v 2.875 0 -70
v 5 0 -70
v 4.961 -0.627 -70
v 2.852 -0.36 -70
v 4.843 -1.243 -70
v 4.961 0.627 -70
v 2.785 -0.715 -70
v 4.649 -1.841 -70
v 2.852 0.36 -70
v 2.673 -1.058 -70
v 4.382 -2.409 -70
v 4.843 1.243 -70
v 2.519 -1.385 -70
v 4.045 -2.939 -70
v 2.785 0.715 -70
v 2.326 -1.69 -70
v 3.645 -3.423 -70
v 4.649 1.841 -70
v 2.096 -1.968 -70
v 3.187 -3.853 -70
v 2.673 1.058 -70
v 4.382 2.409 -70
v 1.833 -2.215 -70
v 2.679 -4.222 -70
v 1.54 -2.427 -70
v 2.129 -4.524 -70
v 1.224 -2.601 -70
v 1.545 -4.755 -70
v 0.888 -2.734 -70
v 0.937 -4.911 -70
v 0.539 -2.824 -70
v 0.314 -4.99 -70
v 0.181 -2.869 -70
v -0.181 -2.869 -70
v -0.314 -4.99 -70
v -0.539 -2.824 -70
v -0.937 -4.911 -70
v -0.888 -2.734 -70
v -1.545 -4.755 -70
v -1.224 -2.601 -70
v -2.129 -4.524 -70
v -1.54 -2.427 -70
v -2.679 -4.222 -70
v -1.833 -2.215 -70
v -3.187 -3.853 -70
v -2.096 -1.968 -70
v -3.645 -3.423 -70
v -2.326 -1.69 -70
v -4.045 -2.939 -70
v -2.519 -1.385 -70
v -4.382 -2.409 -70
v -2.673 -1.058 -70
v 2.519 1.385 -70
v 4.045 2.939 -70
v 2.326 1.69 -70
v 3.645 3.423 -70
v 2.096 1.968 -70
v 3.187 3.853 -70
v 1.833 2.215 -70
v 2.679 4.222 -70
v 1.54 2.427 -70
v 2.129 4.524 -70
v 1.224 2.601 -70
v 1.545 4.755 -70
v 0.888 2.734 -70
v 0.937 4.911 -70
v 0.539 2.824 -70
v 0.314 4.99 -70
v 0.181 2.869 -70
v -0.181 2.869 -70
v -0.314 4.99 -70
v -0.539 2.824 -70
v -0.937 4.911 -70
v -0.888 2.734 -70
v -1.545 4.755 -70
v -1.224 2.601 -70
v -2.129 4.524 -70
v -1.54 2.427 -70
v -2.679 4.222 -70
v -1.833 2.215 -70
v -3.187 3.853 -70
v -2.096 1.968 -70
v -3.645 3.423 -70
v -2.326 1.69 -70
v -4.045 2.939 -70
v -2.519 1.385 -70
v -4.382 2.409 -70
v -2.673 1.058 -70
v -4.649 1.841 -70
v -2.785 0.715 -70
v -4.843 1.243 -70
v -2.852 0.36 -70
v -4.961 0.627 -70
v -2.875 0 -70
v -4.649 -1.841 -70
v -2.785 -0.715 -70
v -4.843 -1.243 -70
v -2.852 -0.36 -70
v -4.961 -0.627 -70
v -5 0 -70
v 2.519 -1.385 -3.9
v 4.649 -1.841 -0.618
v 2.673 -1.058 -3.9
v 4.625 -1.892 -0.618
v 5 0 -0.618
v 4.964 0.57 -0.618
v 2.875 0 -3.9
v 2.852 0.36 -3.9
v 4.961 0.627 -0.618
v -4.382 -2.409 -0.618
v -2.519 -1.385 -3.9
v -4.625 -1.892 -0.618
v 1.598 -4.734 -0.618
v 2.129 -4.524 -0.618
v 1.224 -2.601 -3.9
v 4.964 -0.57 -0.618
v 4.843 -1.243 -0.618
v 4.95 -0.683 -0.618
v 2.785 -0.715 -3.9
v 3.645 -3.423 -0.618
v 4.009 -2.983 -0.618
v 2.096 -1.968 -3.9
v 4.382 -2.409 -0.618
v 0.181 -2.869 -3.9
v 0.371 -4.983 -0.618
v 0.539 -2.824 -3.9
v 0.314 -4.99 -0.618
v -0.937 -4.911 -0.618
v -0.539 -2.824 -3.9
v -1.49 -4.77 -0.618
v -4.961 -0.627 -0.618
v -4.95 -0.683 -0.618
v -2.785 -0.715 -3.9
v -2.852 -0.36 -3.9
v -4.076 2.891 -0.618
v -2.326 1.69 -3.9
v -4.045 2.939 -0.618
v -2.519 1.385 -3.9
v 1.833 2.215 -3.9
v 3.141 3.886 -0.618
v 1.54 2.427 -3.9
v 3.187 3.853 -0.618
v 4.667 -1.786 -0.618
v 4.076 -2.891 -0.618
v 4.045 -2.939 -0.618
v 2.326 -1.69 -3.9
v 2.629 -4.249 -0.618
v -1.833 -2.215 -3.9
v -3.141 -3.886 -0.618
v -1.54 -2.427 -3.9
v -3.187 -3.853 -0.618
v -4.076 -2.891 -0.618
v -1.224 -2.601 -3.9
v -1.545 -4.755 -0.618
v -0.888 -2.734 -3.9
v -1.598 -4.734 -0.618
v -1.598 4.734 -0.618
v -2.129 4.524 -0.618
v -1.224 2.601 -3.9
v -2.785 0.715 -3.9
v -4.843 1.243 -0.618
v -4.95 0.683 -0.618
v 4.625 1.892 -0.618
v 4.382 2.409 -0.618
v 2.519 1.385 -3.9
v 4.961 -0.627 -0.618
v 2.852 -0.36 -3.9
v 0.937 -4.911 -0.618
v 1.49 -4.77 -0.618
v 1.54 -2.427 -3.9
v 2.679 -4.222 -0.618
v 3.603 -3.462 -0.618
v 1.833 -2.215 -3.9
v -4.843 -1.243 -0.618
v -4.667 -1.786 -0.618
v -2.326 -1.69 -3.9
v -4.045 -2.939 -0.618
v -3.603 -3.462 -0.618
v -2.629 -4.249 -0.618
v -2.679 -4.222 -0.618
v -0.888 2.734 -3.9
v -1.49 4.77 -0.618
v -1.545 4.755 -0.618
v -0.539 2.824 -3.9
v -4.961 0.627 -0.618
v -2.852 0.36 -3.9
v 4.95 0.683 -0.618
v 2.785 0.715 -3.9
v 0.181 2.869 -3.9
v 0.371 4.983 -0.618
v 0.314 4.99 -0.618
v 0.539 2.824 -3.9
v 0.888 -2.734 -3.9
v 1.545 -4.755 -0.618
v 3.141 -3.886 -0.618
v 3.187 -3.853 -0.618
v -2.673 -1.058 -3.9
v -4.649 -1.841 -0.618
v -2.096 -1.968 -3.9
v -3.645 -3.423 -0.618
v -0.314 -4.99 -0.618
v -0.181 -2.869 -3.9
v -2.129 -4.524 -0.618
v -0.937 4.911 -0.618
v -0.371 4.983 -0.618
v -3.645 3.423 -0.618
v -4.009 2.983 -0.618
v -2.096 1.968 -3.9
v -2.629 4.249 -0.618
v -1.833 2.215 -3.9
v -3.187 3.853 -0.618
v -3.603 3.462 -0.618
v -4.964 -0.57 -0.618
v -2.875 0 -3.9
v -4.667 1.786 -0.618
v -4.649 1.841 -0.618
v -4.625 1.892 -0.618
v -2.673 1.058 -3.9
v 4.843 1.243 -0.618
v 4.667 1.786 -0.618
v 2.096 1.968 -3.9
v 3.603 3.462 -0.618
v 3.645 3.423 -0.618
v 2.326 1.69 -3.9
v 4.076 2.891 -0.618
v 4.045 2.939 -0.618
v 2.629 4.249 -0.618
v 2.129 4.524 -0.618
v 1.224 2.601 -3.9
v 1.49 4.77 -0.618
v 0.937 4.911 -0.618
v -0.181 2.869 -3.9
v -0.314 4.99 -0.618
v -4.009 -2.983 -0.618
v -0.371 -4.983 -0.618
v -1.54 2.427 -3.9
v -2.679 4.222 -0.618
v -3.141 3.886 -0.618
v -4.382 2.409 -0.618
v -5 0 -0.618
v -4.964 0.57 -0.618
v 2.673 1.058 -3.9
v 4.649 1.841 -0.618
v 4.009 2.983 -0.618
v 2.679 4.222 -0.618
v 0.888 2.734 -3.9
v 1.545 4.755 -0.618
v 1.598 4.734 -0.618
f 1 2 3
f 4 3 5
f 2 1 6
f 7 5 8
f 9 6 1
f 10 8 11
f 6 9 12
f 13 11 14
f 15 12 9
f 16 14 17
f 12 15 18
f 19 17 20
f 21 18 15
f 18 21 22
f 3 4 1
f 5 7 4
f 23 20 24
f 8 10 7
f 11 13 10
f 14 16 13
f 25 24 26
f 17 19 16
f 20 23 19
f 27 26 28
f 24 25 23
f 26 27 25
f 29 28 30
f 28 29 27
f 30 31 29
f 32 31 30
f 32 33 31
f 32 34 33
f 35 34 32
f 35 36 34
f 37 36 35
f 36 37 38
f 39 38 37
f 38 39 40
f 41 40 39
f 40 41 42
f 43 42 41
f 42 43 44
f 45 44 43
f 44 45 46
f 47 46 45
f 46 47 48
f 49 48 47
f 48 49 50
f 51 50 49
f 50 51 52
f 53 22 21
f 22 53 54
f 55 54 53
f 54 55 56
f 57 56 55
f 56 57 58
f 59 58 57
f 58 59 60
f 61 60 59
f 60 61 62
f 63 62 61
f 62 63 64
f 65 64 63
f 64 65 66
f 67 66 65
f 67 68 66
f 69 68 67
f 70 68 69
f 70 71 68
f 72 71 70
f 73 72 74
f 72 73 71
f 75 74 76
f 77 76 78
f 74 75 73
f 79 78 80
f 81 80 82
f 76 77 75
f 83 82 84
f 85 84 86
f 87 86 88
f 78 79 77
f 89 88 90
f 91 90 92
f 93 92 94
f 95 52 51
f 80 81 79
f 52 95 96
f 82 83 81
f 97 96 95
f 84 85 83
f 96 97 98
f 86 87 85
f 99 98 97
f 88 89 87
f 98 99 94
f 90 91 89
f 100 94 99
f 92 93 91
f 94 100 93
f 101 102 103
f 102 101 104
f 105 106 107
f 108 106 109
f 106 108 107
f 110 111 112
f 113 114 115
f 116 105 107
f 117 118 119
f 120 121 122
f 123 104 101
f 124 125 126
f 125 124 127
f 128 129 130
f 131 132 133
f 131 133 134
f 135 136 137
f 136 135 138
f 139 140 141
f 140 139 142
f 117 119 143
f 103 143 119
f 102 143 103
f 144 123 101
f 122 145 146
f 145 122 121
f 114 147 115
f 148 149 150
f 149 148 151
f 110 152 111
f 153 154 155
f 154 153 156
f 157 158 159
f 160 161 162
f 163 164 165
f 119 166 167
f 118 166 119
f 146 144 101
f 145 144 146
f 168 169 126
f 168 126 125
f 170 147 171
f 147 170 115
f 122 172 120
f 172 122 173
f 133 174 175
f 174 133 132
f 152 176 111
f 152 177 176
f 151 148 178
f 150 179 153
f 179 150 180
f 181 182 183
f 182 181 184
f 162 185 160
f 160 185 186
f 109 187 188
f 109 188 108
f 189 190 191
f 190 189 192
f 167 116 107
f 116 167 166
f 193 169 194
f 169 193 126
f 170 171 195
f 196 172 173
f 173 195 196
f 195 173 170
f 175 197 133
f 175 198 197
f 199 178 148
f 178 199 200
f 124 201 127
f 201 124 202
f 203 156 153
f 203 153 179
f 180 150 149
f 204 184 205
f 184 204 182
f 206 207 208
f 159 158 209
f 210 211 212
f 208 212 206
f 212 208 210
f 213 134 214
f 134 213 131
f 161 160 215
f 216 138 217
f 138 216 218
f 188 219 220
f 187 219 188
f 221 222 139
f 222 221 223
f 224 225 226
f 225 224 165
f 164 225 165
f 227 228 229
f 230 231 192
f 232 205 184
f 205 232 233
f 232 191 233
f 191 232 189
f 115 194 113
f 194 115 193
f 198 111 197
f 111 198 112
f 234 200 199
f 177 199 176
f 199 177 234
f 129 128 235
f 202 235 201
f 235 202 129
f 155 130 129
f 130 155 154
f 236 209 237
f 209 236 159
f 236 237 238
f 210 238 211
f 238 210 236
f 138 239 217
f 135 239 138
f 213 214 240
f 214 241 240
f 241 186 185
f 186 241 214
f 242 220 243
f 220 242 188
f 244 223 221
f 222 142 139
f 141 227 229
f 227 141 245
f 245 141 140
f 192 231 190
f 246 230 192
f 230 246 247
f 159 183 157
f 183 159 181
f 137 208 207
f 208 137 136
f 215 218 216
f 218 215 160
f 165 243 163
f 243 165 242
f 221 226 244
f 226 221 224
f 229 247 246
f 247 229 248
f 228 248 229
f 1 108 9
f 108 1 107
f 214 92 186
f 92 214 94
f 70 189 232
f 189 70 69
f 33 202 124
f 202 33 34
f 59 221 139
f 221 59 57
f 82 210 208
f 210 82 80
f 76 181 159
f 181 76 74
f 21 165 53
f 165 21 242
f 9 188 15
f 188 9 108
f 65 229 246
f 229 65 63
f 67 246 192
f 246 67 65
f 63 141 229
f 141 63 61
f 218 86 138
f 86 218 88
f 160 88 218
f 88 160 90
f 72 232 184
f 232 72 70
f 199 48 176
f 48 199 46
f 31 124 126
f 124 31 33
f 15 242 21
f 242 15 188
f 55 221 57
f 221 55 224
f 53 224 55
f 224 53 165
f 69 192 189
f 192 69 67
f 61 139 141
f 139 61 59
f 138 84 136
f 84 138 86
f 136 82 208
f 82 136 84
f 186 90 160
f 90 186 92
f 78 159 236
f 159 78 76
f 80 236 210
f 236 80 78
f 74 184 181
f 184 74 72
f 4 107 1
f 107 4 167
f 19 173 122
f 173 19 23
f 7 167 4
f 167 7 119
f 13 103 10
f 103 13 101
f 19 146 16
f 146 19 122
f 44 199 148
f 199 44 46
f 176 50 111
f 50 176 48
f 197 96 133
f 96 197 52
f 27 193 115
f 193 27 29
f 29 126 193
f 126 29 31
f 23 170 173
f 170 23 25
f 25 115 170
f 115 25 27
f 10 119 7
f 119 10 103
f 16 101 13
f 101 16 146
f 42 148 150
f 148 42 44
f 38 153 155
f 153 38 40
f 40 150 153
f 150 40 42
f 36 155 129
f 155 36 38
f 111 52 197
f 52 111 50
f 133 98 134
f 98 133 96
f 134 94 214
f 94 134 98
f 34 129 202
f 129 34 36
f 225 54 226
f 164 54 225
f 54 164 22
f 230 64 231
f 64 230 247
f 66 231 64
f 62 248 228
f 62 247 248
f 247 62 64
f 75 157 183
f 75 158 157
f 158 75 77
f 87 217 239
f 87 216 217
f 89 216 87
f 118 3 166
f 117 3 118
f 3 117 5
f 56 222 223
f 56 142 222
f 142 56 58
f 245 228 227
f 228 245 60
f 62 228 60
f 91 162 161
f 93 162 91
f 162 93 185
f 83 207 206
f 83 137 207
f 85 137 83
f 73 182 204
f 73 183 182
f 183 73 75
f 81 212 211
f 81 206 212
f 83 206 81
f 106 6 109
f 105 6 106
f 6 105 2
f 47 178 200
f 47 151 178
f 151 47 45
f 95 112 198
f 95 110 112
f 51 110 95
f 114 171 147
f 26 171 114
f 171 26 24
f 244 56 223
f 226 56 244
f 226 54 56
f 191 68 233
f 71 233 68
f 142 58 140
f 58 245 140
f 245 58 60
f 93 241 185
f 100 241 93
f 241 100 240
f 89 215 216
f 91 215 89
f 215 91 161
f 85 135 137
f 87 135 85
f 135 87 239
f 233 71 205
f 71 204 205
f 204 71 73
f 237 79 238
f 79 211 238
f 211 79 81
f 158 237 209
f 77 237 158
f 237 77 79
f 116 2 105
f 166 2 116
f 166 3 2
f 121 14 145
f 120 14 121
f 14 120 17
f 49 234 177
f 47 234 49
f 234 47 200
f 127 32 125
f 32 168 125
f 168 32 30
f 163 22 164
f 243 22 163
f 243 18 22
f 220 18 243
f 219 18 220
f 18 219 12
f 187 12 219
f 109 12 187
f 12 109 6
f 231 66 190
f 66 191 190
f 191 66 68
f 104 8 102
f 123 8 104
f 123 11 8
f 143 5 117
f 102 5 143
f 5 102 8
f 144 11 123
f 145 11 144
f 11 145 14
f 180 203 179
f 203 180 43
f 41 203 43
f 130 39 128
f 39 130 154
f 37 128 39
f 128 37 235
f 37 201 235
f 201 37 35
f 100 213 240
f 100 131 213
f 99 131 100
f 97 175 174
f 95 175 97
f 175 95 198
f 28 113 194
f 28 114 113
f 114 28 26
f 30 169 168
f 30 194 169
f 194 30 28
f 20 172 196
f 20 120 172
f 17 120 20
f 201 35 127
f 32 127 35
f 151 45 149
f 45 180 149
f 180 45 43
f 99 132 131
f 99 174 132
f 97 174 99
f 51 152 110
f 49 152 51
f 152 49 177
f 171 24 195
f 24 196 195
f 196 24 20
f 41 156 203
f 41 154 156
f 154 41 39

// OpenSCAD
$fn = 50;


difference() {
	union() {
		translate(v = [0, 0, -70.0000000000]) {
			cylinder(h = 70, r = 5.0000000000);
		}
		cylinder(h = 0, r = 8.0000000000);
	}
	union() {
		translate(v = [0, 0, 0]) {
			rotate(a = [0, 0, 0]) {
				difference() {
					union() {
						#translate(v = [0, 0, -70.0000000000]) {
							cylinder(h = 70, r = 2.6000000000);
						}
						#translate(v = [0, 0, -3.9000000000]) {
							cylinder(h = 3.9000000000, r = 5.0000000000, r1 = 2.8750000000, r2 = 5.4000000000);
						}
						#translate(v = [0, 0, -70.0000000000]) {
							cylinder(h = 70, r = 2.8750000000);
						}
						#translate(v = [0, 0, -70.0000000000]) {
							cylinder(h = 70, r = 2.6000000000);
						}
					}
					union();
				}
			}
		}
	}
}
